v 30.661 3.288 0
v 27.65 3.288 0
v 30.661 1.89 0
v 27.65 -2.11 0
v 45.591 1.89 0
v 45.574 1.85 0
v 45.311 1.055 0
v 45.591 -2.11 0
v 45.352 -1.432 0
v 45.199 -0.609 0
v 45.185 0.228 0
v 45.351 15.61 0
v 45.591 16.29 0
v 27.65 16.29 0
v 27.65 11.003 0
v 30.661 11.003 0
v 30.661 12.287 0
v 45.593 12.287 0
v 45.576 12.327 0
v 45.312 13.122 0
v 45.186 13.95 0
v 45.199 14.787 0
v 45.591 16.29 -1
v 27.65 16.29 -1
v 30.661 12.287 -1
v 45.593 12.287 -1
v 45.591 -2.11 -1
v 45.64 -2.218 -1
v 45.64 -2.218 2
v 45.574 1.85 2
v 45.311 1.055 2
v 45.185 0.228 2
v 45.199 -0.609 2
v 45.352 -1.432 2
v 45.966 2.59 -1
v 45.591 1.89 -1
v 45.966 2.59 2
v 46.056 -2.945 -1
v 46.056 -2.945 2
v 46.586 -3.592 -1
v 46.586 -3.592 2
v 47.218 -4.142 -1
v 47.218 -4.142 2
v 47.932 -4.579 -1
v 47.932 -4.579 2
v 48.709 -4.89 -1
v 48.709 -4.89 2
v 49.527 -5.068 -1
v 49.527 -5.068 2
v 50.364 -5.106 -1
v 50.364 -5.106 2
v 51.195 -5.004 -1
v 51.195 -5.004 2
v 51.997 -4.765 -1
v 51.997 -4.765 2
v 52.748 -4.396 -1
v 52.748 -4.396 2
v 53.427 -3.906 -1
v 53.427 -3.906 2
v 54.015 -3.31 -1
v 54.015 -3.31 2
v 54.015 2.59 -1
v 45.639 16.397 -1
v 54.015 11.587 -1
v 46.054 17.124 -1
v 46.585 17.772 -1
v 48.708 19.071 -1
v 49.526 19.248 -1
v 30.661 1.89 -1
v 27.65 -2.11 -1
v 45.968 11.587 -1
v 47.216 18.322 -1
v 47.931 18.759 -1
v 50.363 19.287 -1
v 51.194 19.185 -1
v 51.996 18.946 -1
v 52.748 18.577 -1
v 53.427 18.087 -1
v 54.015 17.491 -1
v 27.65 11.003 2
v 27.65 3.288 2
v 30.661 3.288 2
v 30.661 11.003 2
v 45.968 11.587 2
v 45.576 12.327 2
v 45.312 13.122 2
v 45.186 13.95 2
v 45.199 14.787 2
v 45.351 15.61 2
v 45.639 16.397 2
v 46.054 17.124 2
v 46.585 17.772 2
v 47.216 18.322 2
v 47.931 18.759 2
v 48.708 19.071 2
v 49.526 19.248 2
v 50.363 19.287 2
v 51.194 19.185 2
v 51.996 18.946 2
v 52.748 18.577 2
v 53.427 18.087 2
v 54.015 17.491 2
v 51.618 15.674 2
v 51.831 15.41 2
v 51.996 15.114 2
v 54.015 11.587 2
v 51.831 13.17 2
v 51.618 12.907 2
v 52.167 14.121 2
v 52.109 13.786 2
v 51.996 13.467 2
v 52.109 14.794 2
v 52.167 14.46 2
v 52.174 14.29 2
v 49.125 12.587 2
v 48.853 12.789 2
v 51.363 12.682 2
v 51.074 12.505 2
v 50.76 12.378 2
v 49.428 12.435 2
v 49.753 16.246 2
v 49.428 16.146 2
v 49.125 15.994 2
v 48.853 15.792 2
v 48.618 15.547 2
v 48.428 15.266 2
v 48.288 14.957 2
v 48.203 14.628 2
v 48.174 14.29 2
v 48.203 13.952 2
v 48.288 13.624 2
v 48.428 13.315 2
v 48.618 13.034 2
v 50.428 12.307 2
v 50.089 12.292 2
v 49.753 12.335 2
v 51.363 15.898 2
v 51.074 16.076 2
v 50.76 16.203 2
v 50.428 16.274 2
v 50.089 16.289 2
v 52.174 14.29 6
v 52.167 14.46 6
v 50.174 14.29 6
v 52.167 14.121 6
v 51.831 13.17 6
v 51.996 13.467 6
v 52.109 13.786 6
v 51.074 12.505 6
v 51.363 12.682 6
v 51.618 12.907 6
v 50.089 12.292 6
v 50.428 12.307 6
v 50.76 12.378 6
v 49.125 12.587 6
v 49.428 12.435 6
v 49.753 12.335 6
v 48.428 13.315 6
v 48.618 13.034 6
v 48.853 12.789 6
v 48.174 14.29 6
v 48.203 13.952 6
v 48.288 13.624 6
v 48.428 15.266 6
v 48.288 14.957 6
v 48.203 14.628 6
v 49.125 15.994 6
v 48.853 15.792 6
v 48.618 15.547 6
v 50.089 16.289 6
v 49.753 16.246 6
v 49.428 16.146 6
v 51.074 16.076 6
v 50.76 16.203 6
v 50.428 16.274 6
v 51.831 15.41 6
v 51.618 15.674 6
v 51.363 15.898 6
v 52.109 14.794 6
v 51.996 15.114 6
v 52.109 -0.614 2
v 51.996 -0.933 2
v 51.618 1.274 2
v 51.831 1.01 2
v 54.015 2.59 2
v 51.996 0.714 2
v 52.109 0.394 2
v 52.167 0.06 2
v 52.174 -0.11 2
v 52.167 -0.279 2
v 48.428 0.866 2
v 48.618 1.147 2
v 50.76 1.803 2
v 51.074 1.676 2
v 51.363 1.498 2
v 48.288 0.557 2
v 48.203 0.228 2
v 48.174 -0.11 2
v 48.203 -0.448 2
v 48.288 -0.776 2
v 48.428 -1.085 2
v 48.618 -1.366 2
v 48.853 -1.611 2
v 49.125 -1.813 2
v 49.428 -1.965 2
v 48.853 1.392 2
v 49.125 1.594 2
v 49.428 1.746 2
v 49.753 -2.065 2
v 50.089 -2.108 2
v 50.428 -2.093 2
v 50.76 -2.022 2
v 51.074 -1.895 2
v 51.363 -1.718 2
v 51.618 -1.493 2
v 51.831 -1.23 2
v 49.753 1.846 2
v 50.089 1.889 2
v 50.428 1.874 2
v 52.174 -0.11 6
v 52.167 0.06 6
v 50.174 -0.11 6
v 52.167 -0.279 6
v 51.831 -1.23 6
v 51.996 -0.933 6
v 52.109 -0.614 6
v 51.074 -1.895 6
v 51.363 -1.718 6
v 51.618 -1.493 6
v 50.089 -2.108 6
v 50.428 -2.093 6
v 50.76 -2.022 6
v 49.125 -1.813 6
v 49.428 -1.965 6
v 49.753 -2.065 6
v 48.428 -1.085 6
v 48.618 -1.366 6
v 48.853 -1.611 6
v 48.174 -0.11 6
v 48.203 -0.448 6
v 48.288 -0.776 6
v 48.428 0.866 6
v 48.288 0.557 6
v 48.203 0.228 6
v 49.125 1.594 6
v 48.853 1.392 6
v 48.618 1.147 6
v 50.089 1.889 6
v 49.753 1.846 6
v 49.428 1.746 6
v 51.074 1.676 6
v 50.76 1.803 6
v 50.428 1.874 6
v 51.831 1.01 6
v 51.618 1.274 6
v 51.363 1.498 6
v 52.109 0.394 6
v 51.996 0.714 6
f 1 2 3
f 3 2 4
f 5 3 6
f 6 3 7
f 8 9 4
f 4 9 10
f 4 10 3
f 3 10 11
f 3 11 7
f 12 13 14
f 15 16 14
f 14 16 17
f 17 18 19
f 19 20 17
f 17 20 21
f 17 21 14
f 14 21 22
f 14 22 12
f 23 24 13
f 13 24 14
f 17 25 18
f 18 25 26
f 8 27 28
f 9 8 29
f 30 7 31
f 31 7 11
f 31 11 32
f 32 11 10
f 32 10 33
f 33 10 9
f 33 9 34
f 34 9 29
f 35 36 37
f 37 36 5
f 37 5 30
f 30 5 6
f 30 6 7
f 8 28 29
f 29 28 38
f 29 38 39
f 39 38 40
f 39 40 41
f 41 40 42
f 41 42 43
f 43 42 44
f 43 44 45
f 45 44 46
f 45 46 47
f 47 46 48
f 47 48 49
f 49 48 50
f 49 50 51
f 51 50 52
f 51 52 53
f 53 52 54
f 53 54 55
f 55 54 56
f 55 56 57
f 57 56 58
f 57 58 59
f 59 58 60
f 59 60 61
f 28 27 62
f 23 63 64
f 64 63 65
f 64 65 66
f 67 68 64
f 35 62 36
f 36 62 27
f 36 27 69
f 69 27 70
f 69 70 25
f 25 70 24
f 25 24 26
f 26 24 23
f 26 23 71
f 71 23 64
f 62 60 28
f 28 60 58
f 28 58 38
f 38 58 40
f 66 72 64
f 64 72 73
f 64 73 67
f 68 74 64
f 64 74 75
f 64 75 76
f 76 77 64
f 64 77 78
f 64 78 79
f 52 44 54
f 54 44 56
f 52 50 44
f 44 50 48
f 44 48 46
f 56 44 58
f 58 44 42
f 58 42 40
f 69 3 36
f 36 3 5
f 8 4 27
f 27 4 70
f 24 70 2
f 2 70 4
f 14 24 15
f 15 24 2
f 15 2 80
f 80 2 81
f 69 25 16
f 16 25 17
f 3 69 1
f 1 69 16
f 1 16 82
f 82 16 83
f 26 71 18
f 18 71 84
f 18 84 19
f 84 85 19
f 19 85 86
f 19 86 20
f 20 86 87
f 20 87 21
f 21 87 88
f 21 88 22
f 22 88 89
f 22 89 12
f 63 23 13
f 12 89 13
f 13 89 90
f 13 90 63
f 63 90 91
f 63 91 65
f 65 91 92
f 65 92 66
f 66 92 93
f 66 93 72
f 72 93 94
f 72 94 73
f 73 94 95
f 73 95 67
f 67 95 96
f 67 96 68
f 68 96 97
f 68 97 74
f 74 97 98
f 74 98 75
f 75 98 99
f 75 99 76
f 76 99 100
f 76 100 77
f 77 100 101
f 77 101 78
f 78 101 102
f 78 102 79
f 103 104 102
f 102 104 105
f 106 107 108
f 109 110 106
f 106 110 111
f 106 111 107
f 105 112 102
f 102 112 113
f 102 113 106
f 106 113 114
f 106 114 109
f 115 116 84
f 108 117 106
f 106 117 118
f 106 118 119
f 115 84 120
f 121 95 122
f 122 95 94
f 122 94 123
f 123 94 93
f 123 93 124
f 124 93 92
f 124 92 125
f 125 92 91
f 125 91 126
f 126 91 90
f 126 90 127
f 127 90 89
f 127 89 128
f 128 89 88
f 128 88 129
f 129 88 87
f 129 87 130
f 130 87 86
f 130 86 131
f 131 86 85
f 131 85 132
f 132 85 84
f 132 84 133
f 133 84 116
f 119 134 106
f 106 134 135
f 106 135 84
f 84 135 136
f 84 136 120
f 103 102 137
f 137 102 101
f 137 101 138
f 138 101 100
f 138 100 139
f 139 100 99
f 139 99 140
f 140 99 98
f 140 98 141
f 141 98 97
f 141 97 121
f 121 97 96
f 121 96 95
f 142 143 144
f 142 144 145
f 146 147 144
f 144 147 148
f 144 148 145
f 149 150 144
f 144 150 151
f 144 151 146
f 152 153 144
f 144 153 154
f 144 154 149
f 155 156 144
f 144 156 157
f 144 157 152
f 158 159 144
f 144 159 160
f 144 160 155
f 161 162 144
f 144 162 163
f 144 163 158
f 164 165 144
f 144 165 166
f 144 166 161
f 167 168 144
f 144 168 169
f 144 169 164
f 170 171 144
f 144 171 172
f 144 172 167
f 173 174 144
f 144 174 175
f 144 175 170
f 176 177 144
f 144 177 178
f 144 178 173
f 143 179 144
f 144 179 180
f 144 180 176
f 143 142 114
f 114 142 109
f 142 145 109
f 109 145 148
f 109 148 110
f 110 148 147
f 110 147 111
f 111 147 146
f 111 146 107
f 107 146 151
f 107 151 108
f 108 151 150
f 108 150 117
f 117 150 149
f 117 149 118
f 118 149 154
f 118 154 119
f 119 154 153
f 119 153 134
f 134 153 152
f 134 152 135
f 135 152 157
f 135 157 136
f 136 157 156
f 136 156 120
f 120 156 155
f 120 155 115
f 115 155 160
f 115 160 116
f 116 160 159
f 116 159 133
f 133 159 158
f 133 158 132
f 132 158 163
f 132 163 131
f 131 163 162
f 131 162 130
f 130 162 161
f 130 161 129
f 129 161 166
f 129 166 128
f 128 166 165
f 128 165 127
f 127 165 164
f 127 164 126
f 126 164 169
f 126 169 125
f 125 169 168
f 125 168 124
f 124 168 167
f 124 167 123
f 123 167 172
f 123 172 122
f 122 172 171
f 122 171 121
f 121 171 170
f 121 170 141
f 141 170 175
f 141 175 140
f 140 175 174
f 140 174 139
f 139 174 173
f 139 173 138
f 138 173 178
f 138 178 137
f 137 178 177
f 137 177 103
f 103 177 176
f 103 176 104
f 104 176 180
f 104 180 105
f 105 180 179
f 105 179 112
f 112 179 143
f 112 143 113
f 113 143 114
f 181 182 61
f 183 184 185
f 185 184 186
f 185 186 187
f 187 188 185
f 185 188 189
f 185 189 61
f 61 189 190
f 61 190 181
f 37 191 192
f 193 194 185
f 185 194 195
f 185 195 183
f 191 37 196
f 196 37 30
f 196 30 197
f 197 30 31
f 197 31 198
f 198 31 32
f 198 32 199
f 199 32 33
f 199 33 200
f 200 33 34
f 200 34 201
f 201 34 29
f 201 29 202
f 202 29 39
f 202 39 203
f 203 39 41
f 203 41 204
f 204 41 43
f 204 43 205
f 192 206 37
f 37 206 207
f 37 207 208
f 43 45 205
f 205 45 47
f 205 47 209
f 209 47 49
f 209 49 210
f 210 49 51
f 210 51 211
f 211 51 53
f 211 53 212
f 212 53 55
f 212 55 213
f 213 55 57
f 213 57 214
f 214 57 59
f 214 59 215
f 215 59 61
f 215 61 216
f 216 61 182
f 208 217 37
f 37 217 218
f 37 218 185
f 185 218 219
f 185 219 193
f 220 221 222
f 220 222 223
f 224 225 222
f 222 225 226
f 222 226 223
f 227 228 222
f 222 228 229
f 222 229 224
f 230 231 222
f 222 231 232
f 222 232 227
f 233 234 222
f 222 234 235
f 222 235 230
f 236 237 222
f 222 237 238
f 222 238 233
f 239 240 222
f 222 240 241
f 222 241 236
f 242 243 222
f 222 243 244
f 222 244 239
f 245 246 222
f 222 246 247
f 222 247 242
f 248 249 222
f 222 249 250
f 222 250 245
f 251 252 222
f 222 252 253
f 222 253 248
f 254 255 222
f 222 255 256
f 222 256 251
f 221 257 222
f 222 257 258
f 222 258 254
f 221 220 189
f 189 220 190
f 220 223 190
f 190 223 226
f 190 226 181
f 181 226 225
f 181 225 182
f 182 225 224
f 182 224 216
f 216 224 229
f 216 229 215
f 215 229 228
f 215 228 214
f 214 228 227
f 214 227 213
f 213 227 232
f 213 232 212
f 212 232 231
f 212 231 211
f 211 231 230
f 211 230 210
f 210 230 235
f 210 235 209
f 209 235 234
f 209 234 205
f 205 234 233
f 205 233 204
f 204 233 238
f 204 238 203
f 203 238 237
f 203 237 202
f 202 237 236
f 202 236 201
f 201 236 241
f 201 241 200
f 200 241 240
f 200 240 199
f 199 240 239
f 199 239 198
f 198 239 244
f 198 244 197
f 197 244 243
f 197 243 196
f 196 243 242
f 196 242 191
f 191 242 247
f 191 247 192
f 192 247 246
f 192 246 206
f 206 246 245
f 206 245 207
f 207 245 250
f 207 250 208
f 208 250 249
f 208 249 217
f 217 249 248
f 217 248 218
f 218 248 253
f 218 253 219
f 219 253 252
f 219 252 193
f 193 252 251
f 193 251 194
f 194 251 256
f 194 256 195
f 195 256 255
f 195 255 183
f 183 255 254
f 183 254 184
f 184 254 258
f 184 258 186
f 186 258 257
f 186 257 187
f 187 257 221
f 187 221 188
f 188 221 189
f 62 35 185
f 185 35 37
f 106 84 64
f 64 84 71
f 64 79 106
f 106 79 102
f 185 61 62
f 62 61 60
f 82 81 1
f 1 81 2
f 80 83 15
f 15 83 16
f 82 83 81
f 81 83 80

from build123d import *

# Parameters (mm, degrees)
SKIZZE2_R                         = 2
AUFSATZ_LINEAR_AUSTRAGEN1_DEPTH   = 6
AUFSATZ_LINEAR_AUSTRAGEN1_2_DEPTH = 6
SKIZZE3_W                         = 22.523994606
SKIZZE3_H                         = 4.003536954
SKIZZE3_W_2                       = 3.011174253
SKIZZE3_H_2                       = 10.396463046
AUFSATZ_LINEAR_AUSTRAGEN2_DEPTH   = 1
SKIZZE4_R                         = 5
AUFSATZ_LINEAR_AUSTRAGEN3_DEPTH   = 1
AUFSATZ_LINEAR_START              = 2
SKIZZE5_R                         = 5
AUFSATZ_LINEAR_AUSTRAGEN4_DEPTH   = 2
SKIZZE6_W                         = 13
SKIZZE6_H                         = 8.996463046
SCHNITT_LINEAR_AUSTRAGEN1_DEPTH   = 4.8
SKIZZE7_W                         = 2.020513934
SKIZZE7_H                         = 22.861740996
SCHNITT_LINEAR_AUSTRAGEN2_DEPTH   = 4.8
SKIZZE8_W                         = 3.011174253
SKIZZE8_H                         = 7.714308529
AUFSATZ_LINEAR_AUSTRAGEN5_DEPTH   = 2


with BuildPart() as part:
    # Skizze2 → Aufsatz-Linear austragen1 (new body)
    with BuildSketch(Plane.XY):
        with Locations((50.173867598, 14.290447118)):
            Circle(SKIZZE2_R)
    extrude(amount=AUFSATZ_LINEAR_AUSTRAGEN1_DEPTH)

    # Skizze3 → Aufsatz-Linear austragen2 (add)
    with BuildSketch(Plane(origin=(0, 0, 0), x_dir=(-1, 0, 0), z_dir=(0, 0, -1))):
        with Locations((-38.911870295, 14.288678641)):
            Rectangle(SKIZZE3_W, SKIZZE3_H)
        with Locations((-29.155460119, 7.088678641)):
            Rectangle(SKIZZE3_W_2, SKIZZE3_H_2)
        with BuildLine():
            Line((-30.661047245, 1.890447118), (-50.173867598, 1.890447118))
            ThreePointArc((-50.173867598, 1.890447118), (-48.759654035, 1.30466068), (-48.173867598, -0.109552882))
            ThreePointArc((-48.173867598, -0.109552882), (-48.759654035, -1.523766445), (-50.173867598, -2.109552882))
            Line((-50.173867598, -2.109552882), (-27.649872992, -2.109552882))
            Line((-27.649872992, -2.109552882), (-27.649872992, 1.890447118))
            Line((-27.649872992, 1.890447118), (-30.661047245, 1.890447118))
        make_face()
    extrude(amount=AUFSATZ_LINEAR_AUSTRAGEN2_DEPTH)



with BuildPart() as body_2:
    # Skizze2 → Aufsatz-Linear austragen1 2 (new body)
    with BuildSketch(Plane.XY):
        with Locations((50.173867598, -0.109552882)):
            Circle(SKIZZE2_R)
    extrude(amount=AUFSATZ_LINEAR_AUSTRAGEN1_2_DEPTH)


with BuildPart() as part_1:
    add(part.part)

    add(body_2.part)  # Aufsatz-Linear austragen3 merges body 2
    # Skizze4 → Aufsatz-Linear austragen3 (add)
    with BuildSketch(Plane(origin=(0, 0, 0), x_dir=(-1, 0, 0), z_dir=(0, 0, -1))):
        with Locations((-50.173867598, -0.109552882)):
            Circle(SKIZZE4_R)
        with Locations((-50.173867598, 14.290447118)):
            Circle(SKIZZE4_R)
    extrude(amount=AUFSATZ_LINEAR_AUSTRAGEN3_DEPTH)

    # Skizze5 → Aufsatz-Linear austragen4 (add)
    with BuildSketch(Plane.XY.offset(AUFSATZ_LINEAR_START)):
        with Locations((50.173867598, 14.290447118)):
            Circle(SKIZZE5_R)
        with Locations((50.173867598, -0.109552882)):
            Circle(SKIZZE5_R)
    extrude(amount=-AUFSATZ_LINEAR_AUSTRAGEN4_DEPTH)

    # Skizze6 → Schnitt-Linear austragen1 (cut)
    with BuildSketch(Plane.XY.offset(2)):
        with Locations((50.161047245, 7.088678641)):
            Rectangle(SKIZZE6_W, SKIZZE6_H)
    extrude(amount=-SCHNITT_LINEAR_AUSTRAGEN1_DEPTH, mode=Mode.SUBTRACT)

    # Skizze7 → Schnitt-Linear austragen2 (cut)
    with BuildSketch(Plane.XY.offset(2)):
        with Locations((55.025561854, 7.141160287)):
            Rectangle(SKIZZE7_W, SKIZZE7_H)
    extrude(amount=-SCHNITT_LINEAR_AUSTRAGEN2_DEPTH, mode=Mode.SUBTRACT)

    # Skizze8 → Aufsatz-Linear austragen5 (add)
    with BuildSketch(Plane.XY):
        with Locations((29.155460119, 7.145531888)):
            Rectangle(SKIZZE8_W, SKIZZE8_H)
    extrude(amount=AUFSATZ_LINEAR_AUSTRAGEN5_DEPTH)


solid = part_1.part
